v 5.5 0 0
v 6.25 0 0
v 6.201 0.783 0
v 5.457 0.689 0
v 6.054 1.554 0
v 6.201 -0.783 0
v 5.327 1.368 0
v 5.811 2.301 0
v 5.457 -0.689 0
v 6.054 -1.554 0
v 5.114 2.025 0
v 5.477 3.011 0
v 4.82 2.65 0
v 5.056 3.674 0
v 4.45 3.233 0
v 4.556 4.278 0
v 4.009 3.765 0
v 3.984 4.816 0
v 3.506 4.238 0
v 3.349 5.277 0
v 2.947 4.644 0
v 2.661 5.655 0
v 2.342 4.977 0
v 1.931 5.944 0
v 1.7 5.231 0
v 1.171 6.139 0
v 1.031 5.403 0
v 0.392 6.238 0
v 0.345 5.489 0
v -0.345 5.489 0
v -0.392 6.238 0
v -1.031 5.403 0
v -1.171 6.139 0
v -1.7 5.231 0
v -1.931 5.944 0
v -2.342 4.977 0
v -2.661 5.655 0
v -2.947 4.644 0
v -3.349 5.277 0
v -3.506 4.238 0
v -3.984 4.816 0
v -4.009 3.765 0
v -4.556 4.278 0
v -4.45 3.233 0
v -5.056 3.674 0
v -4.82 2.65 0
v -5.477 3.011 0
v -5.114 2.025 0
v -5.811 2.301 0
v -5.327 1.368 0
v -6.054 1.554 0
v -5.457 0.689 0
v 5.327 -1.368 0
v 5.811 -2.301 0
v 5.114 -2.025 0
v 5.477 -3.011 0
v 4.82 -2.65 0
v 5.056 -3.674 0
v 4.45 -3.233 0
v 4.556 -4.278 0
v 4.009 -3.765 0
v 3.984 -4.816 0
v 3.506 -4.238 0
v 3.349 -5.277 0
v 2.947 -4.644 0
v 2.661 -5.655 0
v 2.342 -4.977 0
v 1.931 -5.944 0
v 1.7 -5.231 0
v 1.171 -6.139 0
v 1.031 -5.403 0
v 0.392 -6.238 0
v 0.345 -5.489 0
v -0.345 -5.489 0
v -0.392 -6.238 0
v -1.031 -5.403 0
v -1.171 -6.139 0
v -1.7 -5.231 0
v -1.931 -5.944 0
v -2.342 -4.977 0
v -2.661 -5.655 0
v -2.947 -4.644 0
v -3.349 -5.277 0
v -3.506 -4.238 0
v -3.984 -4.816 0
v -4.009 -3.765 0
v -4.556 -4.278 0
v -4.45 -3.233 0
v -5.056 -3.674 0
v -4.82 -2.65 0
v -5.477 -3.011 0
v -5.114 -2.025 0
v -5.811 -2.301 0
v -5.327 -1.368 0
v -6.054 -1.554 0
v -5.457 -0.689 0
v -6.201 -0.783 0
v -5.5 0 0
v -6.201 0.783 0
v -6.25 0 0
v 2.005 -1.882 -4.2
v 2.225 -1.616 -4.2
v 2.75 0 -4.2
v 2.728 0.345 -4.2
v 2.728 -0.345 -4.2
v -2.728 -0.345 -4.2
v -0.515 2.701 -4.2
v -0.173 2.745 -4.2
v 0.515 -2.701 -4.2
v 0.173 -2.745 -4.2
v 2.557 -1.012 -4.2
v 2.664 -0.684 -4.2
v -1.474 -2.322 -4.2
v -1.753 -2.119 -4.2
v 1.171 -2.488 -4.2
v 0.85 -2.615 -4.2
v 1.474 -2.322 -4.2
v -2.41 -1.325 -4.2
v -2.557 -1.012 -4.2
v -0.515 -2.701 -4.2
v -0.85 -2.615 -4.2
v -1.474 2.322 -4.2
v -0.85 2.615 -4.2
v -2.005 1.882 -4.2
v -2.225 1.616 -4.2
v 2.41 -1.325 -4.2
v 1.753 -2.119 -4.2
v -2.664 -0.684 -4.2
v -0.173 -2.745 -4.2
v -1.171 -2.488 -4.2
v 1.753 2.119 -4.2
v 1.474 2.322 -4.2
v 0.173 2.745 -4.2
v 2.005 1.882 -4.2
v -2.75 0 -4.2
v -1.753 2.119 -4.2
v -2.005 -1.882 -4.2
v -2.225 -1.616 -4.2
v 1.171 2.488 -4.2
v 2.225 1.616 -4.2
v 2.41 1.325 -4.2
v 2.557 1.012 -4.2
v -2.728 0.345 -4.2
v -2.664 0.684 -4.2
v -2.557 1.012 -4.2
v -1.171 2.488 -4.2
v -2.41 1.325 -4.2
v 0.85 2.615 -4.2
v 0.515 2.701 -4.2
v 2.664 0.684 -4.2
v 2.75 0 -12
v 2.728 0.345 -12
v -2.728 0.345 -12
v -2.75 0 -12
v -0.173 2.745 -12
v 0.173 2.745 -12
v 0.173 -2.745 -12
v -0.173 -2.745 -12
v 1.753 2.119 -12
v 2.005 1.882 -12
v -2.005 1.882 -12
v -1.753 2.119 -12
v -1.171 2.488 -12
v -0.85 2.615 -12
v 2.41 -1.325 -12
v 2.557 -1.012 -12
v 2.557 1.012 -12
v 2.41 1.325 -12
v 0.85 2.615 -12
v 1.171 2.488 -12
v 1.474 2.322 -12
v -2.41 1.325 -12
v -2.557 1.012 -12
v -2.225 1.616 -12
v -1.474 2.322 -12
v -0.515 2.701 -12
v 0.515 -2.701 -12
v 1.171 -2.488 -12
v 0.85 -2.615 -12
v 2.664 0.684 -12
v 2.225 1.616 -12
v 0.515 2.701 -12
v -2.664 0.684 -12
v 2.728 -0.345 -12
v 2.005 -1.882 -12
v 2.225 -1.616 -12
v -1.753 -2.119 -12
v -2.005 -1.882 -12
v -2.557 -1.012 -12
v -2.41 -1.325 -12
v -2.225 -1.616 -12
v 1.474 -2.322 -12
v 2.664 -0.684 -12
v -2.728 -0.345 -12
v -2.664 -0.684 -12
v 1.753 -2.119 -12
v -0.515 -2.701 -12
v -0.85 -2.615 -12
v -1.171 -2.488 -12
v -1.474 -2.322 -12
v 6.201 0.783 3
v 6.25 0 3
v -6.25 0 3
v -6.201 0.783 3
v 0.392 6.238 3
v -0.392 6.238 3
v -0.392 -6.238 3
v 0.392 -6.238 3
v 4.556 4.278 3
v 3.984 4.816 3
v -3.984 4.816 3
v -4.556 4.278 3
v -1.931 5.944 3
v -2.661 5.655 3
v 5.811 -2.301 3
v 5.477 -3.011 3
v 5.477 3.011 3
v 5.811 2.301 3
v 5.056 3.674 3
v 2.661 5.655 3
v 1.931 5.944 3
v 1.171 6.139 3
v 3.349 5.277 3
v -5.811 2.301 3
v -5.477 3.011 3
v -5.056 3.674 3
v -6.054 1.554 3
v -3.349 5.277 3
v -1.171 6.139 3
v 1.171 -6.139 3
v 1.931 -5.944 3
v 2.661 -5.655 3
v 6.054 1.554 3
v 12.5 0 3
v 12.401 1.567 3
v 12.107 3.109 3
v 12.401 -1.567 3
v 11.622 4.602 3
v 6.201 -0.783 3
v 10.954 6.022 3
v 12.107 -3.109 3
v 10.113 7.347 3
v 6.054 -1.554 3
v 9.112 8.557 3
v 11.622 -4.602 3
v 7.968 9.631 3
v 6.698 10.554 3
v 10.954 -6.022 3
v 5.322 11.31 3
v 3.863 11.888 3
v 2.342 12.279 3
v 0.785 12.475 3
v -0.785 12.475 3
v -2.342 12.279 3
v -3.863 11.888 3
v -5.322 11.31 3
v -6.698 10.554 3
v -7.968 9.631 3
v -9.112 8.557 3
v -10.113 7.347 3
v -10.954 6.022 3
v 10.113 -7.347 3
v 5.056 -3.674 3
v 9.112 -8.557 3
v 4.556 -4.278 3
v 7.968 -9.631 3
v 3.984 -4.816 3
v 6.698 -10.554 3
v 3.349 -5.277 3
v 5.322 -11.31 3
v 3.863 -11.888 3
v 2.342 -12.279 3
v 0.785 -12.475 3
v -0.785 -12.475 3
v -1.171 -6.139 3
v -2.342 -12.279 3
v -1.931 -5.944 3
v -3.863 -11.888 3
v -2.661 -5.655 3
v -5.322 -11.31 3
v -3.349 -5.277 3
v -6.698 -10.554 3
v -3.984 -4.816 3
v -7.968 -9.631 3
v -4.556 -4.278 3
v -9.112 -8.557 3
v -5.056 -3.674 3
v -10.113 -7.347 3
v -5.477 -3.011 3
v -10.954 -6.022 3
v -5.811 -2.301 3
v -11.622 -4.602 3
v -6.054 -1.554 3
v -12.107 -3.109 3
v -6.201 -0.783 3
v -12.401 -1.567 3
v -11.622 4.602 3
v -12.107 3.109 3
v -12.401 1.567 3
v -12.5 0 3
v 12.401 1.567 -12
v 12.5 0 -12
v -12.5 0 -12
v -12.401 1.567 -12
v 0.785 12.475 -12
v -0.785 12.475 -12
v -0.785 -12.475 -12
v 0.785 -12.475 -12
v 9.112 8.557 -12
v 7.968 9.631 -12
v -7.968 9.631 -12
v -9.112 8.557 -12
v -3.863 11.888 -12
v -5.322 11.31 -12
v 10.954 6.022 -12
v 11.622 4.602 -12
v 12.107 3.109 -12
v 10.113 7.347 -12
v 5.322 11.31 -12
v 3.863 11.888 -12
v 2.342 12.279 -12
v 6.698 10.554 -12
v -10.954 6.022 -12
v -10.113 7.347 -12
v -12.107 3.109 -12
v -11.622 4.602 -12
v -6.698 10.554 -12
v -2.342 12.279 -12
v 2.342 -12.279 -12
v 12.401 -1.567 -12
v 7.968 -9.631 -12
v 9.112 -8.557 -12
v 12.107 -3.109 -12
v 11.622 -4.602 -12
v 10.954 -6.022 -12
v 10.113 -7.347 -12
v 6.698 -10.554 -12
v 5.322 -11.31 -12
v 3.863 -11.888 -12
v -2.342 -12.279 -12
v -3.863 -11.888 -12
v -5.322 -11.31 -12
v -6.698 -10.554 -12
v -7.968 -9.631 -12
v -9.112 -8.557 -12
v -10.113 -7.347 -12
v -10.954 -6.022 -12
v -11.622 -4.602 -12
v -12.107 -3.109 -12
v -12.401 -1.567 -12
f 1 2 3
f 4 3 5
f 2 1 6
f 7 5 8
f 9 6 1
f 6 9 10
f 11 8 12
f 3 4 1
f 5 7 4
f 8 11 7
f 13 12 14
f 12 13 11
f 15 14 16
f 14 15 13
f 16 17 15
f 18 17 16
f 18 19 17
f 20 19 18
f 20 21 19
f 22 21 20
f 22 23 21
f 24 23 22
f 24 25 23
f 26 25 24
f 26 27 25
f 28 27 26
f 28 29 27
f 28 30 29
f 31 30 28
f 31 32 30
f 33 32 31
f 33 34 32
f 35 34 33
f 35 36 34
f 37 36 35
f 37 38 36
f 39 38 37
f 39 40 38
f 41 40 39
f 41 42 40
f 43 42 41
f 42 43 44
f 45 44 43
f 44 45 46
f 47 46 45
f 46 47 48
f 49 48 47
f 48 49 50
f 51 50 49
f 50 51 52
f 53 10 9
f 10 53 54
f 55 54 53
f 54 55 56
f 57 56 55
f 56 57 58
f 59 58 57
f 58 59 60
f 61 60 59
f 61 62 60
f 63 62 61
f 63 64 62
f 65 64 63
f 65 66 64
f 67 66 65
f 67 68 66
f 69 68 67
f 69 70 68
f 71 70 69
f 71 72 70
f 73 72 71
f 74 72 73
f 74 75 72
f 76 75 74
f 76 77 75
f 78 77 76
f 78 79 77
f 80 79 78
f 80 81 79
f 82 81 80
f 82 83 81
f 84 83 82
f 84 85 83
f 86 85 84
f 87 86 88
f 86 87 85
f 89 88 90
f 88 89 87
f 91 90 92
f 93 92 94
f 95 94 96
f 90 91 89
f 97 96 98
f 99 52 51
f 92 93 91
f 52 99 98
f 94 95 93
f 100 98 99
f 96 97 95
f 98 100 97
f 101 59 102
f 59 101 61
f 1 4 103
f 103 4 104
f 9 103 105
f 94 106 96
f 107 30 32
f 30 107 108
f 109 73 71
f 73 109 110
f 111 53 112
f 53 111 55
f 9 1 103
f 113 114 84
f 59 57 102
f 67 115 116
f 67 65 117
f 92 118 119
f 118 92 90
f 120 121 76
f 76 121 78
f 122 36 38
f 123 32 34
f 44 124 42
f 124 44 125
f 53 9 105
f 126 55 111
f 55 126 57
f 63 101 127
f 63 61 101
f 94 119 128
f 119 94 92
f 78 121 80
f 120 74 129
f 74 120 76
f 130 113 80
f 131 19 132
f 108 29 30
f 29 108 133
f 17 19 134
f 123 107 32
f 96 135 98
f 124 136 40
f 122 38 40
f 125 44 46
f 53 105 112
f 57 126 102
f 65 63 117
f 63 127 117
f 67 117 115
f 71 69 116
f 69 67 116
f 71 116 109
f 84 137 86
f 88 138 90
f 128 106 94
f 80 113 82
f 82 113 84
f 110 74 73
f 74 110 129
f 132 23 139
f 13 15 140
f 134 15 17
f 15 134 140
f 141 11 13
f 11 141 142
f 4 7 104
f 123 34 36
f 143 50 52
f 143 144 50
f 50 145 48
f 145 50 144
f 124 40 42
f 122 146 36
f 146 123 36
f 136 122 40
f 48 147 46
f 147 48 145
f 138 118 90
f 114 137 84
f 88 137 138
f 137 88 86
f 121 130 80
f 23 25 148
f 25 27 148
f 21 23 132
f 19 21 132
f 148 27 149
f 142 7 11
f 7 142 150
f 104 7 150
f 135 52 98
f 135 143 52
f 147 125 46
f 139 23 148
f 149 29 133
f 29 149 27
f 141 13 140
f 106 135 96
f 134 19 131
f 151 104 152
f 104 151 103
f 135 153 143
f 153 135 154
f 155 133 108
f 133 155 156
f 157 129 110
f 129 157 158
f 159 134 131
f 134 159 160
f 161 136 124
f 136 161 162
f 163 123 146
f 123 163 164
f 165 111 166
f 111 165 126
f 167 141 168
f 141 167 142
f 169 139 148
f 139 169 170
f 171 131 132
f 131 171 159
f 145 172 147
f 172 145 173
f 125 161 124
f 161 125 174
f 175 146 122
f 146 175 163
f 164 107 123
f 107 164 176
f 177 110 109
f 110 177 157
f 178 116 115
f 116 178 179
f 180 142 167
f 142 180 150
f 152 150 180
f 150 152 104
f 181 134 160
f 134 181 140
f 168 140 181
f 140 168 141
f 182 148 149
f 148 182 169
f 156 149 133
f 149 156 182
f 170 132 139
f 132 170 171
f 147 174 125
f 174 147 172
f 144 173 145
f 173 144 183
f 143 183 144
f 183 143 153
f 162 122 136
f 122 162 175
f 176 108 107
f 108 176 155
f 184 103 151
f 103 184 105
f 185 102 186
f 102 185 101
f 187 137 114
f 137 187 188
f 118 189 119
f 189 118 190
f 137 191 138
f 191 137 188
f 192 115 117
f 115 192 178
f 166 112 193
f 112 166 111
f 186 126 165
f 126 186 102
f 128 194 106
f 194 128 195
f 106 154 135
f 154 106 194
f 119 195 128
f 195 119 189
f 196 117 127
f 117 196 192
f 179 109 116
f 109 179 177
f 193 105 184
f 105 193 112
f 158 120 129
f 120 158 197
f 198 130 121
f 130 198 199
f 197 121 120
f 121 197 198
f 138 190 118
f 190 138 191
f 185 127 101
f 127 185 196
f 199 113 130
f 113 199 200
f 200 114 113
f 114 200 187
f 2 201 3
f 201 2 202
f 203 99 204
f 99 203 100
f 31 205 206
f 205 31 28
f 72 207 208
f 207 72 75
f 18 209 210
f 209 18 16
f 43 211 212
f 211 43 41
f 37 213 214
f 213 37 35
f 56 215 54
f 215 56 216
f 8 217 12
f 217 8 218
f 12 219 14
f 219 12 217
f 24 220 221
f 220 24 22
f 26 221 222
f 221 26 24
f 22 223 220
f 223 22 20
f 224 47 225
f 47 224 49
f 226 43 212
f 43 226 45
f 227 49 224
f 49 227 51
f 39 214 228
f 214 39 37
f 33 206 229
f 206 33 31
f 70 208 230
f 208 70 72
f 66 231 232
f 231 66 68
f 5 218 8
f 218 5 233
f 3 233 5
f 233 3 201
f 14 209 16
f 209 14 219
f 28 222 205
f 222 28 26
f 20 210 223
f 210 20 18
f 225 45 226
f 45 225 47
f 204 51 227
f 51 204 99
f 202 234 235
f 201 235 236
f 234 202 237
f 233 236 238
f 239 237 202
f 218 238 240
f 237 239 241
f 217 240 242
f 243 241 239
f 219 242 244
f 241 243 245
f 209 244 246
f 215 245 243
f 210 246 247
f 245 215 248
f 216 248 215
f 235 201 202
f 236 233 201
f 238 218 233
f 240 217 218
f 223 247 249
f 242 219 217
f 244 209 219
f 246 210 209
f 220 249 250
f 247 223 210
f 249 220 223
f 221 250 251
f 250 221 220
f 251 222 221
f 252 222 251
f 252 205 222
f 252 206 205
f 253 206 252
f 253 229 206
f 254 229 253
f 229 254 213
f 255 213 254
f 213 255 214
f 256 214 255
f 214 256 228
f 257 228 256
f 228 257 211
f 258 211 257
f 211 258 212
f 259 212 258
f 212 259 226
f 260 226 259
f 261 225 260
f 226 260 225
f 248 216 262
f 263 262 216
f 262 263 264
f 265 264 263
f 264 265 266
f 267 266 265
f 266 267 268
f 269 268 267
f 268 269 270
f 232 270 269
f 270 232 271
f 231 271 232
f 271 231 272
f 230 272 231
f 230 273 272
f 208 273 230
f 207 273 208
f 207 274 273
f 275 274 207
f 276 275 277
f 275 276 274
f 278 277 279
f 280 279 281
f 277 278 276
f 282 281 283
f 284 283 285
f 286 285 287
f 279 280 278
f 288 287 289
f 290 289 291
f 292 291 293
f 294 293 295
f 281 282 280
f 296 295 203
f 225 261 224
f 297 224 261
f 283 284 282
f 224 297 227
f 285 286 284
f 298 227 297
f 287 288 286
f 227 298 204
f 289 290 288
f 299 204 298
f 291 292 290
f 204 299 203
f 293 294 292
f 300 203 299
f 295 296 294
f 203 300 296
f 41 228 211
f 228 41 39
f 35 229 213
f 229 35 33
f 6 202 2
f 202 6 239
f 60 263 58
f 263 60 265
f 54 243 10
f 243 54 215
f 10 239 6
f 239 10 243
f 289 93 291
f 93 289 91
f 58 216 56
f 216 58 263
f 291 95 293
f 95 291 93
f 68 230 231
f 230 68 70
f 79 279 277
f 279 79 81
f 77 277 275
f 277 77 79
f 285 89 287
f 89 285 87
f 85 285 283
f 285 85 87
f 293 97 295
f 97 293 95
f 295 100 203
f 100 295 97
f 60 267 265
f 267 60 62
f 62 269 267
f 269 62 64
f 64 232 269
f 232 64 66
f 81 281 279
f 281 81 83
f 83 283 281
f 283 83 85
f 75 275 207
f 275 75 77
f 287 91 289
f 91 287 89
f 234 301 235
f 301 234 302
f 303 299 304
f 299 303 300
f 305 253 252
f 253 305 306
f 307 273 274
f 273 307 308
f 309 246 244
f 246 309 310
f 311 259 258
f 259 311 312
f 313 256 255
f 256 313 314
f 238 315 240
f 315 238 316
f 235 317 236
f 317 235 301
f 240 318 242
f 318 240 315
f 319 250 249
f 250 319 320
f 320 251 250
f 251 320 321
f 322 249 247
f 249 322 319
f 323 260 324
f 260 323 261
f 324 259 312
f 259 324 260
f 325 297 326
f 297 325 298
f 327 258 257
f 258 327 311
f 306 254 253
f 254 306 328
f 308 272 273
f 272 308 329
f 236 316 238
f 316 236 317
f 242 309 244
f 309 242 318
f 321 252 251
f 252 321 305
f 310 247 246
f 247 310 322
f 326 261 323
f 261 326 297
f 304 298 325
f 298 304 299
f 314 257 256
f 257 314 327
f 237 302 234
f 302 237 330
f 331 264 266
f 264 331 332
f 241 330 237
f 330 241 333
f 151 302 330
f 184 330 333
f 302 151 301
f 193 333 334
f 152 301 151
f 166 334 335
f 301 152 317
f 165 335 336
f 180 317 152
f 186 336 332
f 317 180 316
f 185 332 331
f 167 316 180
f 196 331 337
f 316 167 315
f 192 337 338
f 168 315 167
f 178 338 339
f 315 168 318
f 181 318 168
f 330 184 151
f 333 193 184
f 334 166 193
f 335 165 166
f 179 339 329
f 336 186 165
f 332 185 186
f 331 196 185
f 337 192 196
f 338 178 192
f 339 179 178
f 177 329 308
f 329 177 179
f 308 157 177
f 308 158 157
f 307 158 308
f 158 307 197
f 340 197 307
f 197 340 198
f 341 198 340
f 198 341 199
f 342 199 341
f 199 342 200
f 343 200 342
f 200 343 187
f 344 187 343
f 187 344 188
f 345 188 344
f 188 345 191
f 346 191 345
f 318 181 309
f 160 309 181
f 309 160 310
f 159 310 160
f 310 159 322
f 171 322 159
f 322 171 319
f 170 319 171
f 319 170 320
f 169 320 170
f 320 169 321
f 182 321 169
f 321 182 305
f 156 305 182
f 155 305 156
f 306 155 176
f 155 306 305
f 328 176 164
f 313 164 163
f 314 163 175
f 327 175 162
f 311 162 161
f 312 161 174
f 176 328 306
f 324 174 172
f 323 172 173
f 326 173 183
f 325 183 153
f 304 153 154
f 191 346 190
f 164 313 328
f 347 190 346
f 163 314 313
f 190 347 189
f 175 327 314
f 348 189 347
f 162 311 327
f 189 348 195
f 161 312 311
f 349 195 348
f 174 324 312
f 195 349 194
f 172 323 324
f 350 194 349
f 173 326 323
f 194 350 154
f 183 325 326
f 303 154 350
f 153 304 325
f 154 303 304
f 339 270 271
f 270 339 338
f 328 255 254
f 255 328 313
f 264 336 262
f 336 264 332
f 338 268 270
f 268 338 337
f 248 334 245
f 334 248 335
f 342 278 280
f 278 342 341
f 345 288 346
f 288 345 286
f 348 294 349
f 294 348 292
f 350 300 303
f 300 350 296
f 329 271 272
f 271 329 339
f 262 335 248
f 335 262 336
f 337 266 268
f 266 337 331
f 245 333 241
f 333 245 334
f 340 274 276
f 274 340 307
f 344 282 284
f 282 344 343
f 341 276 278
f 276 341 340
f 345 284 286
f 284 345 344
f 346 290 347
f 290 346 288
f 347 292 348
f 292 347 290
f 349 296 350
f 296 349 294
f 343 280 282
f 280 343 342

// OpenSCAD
$fn = 50;


difference() {
	union() {
		translate(v = [0, 0, -12.0000000000]) {
			cylinder(h = 15, r = 12.5000000000);
		}
	}
	union() {
		translate(v = [0, 0, 0]) {
			rotate(a = [0, 0, 0]) {
				difference() {
					union() {
						translate(v = [0, 0, -15.0000000000]) {
							cylinder(h = 15, r = 2.2500000000);
						}
						translate(v = [0, 0, -4.2000000000]) {
							cylinder(h = 4.2000000000, r1 = 2.7500000000, r2 = 5.5000000000);
						}
						translate(v = [0, 0, -15.0000000000]) {
							cylinder(h = 15, r = 2.7500000000);
						}
						translate(v = [0, 0, -15.0000000000]) {
							cylinder(h = 15, r = 2.2500000000);
						}
					}
					union();
				}
			}
		}
		#cylinder(h = 3, r = 6.2500000000);
	}
}
